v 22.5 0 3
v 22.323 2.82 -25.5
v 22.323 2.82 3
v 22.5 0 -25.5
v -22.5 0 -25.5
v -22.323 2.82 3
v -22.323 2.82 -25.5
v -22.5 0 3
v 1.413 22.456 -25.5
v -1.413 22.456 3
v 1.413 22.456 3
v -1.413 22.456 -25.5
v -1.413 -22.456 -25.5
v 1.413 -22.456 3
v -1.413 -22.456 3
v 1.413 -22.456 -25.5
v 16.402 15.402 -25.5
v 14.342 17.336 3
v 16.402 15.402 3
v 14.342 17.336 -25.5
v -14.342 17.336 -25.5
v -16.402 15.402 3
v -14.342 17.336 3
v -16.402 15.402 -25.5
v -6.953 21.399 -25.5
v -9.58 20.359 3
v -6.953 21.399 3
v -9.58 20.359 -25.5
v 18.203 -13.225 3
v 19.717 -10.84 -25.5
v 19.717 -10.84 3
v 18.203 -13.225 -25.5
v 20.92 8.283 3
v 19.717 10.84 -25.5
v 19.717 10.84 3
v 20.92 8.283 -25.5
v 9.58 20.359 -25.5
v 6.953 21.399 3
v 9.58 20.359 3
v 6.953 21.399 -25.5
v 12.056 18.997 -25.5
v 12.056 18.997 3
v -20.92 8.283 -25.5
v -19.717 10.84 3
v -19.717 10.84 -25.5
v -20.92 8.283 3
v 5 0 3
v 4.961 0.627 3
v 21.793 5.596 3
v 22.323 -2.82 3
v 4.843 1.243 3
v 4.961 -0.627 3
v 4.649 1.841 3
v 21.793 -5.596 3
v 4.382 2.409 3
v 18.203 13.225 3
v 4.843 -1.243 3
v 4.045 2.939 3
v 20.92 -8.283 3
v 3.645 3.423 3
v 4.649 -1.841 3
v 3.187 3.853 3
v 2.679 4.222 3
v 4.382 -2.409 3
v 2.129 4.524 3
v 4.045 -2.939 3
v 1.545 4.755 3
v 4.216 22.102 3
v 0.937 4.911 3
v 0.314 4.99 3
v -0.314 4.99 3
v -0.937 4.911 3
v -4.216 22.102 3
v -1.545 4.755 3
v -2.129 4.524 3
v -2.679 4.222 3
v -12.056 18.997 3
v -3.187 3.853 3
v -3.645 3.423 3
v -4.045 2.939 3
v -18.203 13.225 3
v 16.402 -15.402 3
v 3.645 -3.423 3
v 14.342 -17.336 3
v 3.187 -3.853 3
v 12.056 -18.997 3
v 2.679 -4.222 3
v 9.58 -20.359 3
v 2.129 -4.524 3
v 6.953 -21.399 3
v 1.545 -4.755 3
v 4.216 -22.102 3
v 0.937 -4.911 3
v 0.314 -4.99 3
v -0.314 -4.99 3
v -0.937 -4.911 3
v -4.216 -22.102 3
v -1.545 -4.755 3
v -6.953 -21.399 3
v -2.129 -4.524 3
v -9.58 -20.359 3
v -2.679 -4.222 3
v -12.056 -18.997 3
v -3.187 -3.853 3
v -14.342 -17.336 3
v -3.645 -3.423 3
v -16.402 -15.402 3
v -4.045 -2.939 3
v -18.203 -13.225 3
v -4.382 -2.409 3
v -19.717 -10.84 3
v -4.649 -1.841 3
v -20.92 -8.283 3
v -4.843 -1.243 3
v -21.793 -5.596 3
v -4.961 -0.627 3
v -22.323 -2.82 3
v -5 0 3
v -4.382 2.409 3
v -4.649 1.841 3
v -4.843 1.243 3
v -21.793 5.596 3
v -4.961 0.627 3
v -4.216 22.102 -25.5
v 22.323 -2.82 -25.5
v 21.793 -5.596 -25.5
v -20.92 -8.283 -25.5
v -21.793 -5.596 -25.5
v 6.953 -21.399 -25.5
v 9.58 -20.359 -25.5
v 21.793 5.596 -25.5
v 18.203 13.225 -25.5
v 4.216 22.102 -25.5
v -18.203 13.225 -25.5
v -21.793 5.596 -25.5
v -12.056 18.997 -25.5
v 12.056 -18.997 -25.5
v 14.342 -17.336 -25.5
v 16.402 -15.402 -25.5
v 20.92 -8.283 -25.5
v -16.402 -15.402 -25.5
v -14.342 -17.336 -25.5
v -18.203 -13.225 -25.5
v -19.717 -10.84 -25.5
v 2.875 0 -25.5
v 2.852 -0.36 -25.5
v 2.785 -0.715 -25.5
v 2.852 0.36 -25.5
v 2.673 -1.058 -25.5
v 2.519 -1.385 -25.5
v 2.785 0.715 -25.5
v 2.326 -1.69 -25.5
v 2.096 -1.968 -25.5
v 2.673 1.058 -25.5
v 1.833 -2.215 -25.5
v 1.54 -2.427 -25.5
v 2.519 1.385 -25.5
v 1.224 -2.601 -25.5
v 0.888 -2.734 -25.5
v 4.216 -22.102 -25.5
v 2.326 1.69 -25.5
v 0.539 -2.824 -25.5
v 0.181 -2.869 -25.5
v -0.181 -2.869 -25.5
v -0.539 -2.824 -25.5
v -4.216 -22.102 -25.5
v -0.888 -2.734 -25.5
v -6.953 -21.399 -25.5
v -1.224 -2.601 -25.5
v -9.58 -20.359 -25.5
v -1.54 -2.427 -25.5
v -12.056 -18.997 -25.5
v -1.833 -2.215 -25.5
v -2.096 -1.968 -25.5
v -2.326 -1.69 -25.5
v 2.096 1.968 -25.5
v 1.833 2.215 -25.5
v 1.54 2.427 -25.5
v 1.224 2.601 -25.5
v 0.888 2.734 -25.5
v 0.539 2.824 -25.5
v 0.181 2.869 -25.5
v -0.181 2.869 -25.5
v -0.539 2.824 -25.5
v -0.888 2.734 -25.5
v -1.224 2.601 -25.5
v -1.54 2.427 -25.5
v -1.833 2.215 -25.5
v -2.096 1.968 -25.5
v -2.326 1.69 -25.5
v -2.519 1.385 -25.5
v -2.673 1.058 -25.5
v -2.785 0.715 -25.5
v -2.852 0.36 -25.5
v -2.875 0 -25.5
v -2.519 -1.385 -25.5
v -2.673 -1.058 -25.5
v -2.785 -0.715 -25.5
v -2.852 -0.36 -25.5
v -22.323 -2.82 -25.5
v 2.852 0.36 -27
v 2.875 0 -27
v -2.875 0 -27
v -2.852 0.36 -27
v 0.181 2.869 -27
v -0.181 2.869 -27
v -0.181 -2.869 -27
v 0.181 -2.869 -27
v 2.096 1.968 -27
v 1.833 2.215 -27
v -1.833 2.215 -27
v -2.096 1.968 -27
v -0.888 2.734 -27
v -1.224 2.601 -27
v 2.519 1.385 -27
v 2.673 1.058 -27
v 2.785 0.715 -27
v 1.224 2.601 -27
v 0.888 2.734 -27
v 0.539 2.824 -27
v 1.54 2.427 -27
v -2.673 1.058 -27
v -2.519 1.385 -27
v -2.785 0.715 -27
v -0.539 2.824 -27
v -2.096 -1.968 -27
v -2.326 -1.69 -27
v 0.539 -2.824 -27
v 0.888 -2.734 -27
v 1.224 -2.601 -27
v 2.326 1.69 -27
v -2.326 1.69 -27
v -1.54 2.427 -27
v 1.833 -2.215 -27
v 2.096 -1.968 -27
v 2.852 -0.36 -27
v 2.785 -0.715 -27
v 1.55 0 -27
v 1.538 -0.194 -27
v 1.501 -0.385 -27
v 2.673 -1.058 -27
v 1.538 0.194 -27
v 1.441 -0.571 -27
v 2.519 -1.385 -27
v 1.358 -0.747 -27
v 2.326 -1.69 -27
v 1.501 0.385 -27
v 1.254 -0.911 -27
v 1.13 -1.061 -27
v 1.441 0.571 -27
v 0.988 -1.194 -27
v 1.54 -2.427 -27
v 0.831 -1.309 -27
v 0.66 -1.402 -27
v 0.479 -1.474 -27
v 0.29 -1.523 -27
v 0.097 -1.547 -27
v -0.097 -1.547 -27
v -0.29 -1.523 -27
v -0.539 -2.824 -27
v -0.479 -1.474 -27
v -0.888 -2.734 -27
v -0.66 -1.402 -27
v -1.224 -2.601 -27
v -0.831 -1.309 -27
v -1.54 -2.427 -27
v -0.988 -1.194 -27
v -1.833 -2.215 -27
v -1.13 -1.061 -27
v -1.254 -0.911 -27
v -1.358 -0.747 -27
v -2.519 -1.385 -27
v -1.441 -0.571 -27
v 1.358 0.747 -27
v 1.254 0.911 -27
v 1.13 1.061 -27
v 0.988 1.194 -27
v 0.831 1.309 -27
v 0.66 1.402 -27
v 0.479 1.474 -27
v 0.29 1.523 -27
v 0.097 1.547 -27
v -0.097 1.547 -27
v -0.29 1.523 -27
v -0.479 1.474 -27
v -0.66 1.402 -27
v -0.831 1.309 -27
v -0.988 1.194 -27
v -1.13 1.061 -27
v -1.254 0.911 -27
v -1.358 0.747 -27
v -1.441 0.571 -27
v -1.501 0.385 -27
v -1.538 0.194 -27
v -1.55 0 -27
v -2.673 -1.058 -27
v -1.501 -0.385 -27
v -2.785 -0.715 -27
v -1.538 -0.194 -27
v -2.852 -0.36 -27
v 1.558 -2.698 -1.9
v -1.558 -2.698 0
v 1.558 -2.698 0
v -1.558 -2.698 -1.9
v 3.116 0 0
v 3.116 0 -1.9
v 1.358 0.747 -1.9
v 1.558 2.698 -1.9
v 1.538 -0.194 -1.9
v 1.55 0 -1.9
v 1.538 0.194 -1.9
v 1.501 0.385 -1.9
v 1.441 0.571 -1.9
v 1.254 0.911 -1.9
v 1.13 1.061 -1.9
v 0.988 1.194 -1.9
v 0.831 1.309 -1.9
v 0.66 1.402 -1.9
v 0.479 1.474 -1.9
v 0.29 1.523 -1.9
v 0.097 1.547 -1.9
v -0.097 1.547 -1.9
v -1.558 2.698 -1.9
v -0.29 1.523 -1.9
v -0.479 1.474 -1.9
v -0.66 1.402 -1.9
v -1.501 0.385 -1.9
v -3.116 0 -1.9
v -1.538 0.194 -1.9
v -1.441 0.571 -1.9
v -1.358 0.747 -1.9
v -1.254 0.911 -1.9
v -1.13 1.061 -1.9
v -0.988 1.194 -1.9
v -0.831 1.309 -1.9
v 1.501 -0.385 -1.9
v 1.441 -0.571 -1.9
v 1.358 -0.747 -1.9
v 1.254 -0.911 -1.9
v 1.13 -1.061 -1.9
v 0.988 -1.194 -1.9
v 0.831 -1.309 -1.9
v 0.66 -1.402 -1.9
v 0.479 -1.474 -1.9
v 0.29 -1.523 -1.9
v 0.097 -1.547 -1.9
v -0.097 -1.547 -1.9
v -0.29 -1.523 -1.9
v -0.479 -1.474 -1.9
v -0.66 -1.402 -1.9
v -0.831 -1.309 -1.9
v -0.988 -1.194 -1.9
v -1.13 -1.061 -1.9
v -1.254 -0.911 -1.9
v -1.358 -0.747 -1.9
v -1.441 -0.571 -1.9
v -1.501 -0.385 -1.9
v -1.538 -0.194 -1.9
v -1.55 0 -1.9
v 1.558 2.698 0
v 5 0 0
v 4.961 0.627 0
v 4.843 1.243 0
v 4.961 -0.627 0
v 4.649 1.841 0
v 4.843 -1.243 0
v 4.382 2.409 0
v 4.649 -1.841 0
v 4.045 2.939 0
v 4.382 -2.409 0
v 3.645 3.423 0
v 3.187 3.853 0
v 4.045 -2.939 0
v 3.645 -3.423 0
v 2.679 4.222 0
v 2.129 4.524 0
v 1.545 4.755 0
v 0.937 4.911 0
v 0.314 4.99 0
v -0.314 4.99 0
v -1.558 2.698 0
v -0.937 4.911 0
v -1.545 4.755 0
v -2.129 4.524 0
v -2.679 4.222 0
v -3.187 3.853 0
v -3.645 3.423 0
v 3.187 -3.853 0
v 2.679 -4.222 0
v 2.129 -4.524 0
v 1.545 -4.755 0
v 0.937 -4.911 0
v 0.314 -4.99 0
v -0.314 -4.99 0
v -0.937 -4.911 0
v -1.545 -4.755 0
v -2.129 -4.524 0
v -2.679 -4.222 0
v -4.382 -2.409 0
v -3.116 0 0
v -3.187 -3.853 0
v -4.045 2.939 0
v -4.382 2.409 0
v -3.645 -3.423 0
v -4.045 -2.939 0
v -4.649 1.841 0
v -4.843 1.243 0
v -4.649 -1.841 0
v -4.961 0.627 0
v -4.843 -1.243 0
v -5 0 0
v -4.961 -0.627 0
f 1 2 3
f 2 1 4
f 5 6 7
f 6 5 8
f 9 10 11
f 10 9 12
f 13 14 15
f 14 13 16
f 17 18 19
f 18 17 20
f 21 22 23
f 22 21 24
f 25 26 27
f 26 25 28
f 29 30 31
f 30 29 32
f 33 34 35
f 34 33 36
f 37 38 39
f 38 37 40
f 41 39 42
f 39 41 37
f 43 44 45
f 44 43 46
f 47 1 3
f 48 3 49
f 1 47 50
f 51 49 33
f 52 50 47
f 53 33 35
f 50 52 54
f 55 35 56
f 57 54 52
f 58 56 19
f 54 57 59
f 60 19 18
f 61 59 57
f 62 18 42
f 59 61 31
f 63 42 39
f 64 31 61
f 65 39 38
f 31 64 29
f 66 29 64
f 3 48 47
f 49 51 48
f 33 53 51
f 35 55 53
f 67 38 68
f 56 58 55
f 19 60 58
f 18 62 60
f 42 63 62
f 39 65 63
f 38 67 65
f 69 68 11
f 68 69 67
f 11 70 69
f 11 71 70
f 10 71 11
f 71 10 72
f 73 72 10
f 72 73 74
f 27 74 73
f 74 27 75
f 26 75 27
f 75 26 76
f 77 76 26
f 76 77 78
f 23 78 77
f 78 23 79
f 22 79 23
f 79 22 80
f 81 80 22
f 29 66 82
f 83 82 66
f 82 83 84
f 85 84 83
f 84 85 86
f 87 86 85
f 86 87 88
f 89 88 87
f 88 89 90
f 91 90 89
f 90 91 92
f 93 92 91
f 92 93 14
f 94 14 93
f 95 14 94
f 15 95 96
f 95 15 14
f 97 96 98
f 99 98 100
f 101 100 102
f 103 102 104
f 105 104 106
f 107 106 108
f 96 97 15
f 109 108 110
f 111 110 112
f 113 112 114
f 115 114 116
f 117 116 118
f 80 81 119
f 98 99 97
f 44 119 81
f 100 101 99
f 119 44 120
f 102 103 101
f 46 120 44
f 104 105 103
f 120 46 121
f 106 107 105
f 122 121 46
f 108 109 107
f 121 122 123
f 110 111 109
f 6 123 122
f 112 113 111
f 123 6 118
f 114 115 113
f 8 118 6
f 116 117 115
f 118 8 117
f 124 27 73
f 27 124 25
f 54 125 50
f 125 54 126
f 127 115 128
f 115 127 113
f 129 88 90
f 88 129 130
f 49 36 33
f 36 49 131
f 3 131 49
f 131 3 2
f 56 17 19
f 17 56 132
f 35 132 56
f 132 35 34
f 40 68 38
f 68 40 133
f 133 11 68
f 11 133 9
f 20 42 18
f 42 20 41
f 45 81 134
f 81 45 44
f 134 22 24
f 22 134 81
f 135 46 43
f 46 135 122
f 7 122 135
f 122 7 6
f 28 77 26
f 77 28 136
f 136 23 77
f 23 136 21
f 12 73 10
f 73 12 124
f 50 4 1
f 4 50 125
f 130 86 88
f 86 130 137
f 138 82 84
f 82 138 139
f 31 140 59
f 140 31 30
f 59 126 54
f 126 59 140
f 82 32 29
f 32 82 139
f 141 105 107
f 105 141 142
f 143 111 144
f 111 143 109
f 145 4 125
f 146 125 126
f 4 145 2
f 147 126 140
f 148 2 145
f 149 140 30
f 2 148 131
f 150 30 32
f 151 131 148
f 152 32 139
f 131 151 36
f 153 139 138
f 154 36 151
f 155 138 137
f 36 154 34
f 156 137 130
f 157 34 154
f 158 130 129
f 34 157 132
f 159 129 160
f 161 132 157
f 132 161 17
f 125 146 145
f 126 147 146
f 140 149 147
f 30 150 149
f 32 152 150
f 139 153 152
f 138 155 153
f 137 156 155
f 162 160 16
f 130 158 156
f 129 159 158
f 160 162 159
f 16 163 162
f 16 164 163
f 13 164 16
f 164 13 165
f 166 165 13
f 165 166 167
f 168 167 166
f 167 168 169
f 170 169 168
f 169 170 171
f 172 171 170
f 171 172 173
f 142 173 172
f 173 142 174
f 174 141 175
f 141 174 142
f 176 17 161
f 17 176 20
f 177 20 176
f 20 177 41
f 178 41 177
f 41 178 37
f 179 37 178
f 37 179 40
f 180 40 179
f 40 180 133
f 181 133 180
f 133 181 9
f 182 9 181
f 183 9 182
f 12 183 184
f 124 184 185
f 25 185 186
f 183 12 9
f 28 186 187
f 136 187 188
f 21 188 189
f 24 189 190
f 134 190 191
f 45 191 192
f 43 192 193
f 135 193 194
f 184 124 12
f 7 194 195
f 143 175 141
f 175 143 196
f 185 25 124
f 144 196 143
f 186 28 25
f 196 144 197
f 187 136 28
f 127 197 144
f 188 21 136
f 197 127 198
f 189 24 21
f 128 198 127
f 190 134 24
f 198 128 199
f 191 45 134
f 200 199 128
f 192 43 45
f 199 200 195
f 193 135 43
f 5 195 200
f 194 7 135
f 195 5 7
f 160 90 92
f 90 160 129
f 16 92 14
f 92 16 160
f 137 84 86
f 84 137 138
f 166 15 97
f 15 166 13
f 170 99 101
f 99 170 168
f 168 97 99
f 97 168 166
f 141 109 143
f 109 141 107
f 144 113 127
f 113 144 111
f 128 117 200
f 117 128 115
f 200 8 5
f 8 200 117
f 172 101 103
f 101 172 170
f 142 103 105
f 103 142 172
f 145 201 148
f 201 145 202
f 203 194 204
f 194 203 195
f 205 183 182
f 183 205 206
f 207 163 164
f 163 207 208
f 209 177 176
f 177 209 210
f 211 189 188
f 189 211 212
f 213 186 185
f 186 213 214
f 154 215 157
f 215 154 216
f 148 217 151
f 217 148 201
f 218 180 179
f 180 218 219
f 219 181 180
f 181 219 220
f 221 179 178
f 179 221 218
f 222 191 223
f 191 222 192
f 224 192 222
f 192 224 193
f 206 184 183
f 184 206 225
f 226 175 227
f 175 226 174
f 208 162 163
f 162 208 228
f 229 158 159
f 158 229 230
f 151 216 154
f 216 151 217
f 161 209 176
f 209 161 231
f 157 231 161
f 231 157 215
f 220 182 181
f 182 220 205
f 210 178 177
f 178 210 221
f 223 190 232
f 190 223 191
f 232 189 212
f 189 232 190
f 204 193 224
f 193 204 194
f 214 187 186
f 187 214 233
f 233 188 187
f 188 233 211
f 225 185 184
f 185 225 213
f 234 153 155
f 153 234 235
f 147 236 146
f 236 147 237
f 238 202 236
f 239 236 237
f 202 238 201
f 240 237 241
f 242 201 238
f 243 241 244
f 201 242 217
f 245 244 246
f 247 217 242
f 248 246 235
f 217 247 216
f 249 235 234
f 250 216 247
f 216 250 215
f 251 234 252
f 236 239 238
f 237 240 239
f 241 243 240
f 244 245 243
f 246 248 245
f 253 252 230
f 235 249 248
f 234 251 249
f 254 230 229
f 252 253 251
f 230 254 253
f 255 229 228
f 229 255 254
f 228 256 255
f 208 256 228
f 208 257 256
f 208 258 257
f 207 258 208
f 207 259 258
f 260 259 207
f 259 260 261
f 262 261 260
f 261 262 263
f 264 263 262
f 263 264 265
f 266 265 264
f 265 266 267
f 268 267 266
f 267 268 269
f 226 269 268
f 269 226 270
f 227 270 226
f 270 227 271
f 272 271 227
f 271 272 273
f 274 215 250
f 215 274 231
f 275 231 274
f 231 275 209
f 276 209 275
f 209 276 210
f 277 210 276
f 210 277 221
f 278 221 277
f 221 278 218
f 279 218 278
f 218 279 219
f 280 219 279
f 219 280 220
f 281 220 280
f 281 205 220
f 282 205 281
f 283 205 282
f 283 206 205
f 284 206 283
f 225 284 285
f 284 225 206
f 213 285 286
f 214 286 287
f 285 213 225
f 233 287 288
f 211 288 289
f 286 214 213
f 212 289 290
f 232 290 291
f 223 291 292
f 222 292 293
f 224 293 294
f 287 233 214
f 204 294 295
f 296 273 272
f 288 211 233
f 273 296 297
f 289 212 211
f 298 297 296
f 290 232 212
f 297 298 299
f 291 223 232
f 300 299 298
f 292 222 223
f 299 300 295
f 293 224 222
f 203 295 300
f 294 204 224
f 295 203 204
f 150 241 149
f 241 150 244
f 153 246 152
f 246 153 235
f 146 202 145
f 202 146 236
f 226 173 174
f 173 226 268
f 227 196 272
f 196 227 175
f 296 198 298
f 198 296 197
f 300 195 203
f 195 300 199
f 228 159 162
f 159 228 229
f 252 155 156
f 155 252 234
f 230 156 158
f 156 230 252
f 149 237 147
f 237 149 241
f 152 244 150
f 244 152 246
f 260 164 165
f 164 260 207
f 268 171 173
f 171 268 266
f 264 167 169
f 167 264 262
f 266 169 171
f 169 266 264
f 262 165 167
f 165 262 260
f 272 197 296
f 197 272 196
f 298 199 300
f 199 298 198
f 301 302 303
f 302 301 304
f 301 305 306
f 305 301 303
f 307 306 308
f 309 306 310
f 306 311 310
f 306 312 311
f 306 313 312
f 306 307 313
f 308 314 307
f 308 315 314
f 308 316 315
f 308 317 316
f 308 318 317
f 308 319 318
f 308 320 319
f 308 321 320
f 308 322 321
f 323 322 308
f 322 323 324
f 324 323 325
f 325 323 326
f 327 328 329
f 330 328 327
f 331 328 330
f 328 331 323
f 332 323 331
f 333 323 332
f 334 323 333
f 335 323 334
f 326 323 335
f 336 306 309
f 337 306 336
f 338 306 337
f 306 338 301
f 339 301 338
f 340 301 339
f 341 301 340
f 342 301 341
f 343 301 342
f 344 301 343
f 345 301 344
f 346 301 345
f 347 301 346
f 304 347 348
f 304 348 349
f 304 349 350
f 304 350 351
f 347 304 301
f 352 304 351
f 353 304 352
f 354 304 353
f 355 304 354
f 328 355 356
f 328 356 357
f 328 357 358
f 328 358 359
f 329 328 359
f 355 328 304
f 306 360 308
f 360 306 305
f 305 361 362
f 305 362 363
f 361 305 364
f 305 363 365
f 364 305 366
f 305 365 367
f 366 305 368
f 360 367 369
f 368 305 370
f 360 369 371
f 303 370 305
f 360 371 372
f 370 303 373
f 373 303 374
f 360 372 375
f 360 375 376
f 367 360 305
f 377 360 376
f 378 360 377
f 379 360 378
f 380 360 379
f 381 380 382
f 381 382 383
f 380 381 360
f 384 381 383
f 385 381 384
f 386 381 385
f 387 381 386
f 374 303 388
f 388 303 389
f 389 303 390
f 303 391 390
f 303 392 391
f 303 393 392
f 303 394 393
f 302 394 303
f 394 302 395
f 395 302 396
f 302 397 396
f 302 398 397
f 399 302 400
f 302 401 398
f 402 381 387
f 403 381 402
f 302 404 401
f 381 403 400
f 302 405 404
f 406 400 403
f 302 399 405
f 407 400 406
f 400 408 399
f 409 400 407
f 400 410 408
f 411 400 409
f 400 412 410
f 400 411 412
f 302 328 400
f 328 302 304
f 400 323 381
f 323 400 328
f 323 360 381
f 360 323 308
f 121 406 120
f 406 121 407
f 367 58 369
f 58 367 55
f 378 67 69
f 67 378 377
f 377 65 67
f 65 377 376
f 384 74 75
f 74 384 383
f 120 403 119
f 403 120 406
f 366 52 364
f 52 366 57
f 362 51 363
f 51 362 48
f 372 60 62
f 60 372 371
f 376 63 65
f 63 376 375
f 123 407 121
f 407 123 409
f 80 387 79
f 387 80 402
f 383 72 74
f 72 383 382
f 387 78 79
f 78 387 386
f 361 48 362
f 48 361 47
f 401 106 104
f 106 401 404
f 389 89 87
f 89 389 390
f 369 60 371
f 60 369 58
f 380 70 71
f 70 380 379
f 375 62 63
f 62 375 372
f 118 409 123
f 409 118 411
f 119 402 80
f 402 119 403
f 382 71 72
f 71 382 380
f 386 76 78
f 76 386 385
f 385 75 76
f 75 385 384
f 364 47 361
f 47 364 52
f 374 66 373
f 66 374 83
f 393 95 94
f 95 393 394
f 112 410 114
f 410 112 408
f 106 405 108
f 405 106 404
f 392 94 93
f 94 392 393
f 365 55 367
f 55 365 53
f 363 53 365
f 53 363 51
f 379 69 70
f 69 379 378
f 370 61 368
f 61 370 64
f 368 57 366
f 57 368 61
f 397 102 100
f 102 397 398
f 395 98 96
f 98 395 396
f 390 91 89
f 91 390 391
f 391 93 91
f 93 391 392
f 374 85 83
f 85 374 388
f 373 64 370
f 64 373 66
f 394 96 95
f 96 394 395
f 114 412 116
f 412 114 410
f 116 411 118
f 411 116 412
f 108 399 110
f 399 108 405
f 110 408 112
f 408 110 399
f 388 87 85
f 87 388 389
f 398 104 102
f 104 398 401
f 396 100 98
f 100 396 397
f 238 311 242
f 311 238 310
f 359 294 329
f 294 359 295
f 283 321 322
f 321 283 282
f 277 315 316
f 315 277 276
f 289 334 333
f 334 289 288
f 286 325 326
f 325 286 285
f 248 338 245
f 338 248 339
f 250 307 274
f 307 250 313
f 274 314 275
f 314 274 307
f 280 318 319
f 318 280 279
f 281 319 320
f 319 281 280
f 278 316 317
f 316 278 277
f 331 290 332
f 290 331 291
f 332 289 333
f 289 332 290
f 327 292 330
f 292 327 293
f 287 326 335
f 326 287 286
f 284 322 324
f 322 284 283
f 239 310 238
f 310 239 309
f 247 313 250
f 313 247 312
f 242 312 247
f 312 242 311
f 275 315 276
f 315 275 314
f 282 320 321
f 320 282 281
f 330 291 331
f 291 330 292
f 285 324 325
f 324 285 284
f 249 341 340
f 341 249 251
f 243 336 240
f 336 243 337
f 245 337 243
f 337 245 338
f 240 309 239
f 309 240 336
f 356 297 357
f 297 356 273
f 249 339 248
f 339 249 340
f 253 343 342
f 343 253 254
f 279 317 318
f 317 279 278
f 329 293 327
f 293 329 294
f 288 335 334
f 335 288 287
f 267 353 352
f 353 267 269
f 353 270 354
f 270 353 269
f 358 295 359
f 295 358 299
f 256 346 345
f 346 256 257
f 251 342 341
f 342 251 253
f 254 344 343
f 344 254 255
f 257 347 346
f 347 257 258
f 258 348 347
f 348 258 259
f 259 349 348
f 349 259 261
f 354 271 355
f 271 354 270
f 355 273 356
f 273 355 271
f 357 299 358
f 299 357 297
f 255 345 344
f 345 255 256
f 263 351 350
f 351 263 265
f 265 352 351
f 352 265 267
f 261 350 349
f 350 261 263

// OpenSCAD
$fn = 50;

difference() {
	union() {
		translate(v = [0, 0, -25.5]) {
			cylinder(h = 28.5, r = 22.5);
		}
		#translate(v = [0, 0, -27.0]) {
			cylinder(h = 27, r = 2.875);
		}
	}
	union() {
		translate(v = [0, 0, 0]) {
			rotate(a = [0, 0, 0]) {
				difference() {
					union() {
						translate(v = [0, 0, -1.9]) {
							linear_extrude(height = 1.9) {
								polygon(points = [[3.1158, 0.0], [1.5579000000000005, 2.698361953111554], [-1.5578999999999994, 2.6983619531115544], [-3.1158, 3.815754496783323e-16], [-1.5579000000000014, -2.6983619531115535], [1.557899999999998, -2.6983619531115552]]);
							}
						}
					}
					union();
				}
			}
		}
		#cylinder(h = 3, r = 5.0);
		#translate(v = [0, 0, -100.0]) {
			cylinder(h = 200, r = 1.55);
		}
	}
}
